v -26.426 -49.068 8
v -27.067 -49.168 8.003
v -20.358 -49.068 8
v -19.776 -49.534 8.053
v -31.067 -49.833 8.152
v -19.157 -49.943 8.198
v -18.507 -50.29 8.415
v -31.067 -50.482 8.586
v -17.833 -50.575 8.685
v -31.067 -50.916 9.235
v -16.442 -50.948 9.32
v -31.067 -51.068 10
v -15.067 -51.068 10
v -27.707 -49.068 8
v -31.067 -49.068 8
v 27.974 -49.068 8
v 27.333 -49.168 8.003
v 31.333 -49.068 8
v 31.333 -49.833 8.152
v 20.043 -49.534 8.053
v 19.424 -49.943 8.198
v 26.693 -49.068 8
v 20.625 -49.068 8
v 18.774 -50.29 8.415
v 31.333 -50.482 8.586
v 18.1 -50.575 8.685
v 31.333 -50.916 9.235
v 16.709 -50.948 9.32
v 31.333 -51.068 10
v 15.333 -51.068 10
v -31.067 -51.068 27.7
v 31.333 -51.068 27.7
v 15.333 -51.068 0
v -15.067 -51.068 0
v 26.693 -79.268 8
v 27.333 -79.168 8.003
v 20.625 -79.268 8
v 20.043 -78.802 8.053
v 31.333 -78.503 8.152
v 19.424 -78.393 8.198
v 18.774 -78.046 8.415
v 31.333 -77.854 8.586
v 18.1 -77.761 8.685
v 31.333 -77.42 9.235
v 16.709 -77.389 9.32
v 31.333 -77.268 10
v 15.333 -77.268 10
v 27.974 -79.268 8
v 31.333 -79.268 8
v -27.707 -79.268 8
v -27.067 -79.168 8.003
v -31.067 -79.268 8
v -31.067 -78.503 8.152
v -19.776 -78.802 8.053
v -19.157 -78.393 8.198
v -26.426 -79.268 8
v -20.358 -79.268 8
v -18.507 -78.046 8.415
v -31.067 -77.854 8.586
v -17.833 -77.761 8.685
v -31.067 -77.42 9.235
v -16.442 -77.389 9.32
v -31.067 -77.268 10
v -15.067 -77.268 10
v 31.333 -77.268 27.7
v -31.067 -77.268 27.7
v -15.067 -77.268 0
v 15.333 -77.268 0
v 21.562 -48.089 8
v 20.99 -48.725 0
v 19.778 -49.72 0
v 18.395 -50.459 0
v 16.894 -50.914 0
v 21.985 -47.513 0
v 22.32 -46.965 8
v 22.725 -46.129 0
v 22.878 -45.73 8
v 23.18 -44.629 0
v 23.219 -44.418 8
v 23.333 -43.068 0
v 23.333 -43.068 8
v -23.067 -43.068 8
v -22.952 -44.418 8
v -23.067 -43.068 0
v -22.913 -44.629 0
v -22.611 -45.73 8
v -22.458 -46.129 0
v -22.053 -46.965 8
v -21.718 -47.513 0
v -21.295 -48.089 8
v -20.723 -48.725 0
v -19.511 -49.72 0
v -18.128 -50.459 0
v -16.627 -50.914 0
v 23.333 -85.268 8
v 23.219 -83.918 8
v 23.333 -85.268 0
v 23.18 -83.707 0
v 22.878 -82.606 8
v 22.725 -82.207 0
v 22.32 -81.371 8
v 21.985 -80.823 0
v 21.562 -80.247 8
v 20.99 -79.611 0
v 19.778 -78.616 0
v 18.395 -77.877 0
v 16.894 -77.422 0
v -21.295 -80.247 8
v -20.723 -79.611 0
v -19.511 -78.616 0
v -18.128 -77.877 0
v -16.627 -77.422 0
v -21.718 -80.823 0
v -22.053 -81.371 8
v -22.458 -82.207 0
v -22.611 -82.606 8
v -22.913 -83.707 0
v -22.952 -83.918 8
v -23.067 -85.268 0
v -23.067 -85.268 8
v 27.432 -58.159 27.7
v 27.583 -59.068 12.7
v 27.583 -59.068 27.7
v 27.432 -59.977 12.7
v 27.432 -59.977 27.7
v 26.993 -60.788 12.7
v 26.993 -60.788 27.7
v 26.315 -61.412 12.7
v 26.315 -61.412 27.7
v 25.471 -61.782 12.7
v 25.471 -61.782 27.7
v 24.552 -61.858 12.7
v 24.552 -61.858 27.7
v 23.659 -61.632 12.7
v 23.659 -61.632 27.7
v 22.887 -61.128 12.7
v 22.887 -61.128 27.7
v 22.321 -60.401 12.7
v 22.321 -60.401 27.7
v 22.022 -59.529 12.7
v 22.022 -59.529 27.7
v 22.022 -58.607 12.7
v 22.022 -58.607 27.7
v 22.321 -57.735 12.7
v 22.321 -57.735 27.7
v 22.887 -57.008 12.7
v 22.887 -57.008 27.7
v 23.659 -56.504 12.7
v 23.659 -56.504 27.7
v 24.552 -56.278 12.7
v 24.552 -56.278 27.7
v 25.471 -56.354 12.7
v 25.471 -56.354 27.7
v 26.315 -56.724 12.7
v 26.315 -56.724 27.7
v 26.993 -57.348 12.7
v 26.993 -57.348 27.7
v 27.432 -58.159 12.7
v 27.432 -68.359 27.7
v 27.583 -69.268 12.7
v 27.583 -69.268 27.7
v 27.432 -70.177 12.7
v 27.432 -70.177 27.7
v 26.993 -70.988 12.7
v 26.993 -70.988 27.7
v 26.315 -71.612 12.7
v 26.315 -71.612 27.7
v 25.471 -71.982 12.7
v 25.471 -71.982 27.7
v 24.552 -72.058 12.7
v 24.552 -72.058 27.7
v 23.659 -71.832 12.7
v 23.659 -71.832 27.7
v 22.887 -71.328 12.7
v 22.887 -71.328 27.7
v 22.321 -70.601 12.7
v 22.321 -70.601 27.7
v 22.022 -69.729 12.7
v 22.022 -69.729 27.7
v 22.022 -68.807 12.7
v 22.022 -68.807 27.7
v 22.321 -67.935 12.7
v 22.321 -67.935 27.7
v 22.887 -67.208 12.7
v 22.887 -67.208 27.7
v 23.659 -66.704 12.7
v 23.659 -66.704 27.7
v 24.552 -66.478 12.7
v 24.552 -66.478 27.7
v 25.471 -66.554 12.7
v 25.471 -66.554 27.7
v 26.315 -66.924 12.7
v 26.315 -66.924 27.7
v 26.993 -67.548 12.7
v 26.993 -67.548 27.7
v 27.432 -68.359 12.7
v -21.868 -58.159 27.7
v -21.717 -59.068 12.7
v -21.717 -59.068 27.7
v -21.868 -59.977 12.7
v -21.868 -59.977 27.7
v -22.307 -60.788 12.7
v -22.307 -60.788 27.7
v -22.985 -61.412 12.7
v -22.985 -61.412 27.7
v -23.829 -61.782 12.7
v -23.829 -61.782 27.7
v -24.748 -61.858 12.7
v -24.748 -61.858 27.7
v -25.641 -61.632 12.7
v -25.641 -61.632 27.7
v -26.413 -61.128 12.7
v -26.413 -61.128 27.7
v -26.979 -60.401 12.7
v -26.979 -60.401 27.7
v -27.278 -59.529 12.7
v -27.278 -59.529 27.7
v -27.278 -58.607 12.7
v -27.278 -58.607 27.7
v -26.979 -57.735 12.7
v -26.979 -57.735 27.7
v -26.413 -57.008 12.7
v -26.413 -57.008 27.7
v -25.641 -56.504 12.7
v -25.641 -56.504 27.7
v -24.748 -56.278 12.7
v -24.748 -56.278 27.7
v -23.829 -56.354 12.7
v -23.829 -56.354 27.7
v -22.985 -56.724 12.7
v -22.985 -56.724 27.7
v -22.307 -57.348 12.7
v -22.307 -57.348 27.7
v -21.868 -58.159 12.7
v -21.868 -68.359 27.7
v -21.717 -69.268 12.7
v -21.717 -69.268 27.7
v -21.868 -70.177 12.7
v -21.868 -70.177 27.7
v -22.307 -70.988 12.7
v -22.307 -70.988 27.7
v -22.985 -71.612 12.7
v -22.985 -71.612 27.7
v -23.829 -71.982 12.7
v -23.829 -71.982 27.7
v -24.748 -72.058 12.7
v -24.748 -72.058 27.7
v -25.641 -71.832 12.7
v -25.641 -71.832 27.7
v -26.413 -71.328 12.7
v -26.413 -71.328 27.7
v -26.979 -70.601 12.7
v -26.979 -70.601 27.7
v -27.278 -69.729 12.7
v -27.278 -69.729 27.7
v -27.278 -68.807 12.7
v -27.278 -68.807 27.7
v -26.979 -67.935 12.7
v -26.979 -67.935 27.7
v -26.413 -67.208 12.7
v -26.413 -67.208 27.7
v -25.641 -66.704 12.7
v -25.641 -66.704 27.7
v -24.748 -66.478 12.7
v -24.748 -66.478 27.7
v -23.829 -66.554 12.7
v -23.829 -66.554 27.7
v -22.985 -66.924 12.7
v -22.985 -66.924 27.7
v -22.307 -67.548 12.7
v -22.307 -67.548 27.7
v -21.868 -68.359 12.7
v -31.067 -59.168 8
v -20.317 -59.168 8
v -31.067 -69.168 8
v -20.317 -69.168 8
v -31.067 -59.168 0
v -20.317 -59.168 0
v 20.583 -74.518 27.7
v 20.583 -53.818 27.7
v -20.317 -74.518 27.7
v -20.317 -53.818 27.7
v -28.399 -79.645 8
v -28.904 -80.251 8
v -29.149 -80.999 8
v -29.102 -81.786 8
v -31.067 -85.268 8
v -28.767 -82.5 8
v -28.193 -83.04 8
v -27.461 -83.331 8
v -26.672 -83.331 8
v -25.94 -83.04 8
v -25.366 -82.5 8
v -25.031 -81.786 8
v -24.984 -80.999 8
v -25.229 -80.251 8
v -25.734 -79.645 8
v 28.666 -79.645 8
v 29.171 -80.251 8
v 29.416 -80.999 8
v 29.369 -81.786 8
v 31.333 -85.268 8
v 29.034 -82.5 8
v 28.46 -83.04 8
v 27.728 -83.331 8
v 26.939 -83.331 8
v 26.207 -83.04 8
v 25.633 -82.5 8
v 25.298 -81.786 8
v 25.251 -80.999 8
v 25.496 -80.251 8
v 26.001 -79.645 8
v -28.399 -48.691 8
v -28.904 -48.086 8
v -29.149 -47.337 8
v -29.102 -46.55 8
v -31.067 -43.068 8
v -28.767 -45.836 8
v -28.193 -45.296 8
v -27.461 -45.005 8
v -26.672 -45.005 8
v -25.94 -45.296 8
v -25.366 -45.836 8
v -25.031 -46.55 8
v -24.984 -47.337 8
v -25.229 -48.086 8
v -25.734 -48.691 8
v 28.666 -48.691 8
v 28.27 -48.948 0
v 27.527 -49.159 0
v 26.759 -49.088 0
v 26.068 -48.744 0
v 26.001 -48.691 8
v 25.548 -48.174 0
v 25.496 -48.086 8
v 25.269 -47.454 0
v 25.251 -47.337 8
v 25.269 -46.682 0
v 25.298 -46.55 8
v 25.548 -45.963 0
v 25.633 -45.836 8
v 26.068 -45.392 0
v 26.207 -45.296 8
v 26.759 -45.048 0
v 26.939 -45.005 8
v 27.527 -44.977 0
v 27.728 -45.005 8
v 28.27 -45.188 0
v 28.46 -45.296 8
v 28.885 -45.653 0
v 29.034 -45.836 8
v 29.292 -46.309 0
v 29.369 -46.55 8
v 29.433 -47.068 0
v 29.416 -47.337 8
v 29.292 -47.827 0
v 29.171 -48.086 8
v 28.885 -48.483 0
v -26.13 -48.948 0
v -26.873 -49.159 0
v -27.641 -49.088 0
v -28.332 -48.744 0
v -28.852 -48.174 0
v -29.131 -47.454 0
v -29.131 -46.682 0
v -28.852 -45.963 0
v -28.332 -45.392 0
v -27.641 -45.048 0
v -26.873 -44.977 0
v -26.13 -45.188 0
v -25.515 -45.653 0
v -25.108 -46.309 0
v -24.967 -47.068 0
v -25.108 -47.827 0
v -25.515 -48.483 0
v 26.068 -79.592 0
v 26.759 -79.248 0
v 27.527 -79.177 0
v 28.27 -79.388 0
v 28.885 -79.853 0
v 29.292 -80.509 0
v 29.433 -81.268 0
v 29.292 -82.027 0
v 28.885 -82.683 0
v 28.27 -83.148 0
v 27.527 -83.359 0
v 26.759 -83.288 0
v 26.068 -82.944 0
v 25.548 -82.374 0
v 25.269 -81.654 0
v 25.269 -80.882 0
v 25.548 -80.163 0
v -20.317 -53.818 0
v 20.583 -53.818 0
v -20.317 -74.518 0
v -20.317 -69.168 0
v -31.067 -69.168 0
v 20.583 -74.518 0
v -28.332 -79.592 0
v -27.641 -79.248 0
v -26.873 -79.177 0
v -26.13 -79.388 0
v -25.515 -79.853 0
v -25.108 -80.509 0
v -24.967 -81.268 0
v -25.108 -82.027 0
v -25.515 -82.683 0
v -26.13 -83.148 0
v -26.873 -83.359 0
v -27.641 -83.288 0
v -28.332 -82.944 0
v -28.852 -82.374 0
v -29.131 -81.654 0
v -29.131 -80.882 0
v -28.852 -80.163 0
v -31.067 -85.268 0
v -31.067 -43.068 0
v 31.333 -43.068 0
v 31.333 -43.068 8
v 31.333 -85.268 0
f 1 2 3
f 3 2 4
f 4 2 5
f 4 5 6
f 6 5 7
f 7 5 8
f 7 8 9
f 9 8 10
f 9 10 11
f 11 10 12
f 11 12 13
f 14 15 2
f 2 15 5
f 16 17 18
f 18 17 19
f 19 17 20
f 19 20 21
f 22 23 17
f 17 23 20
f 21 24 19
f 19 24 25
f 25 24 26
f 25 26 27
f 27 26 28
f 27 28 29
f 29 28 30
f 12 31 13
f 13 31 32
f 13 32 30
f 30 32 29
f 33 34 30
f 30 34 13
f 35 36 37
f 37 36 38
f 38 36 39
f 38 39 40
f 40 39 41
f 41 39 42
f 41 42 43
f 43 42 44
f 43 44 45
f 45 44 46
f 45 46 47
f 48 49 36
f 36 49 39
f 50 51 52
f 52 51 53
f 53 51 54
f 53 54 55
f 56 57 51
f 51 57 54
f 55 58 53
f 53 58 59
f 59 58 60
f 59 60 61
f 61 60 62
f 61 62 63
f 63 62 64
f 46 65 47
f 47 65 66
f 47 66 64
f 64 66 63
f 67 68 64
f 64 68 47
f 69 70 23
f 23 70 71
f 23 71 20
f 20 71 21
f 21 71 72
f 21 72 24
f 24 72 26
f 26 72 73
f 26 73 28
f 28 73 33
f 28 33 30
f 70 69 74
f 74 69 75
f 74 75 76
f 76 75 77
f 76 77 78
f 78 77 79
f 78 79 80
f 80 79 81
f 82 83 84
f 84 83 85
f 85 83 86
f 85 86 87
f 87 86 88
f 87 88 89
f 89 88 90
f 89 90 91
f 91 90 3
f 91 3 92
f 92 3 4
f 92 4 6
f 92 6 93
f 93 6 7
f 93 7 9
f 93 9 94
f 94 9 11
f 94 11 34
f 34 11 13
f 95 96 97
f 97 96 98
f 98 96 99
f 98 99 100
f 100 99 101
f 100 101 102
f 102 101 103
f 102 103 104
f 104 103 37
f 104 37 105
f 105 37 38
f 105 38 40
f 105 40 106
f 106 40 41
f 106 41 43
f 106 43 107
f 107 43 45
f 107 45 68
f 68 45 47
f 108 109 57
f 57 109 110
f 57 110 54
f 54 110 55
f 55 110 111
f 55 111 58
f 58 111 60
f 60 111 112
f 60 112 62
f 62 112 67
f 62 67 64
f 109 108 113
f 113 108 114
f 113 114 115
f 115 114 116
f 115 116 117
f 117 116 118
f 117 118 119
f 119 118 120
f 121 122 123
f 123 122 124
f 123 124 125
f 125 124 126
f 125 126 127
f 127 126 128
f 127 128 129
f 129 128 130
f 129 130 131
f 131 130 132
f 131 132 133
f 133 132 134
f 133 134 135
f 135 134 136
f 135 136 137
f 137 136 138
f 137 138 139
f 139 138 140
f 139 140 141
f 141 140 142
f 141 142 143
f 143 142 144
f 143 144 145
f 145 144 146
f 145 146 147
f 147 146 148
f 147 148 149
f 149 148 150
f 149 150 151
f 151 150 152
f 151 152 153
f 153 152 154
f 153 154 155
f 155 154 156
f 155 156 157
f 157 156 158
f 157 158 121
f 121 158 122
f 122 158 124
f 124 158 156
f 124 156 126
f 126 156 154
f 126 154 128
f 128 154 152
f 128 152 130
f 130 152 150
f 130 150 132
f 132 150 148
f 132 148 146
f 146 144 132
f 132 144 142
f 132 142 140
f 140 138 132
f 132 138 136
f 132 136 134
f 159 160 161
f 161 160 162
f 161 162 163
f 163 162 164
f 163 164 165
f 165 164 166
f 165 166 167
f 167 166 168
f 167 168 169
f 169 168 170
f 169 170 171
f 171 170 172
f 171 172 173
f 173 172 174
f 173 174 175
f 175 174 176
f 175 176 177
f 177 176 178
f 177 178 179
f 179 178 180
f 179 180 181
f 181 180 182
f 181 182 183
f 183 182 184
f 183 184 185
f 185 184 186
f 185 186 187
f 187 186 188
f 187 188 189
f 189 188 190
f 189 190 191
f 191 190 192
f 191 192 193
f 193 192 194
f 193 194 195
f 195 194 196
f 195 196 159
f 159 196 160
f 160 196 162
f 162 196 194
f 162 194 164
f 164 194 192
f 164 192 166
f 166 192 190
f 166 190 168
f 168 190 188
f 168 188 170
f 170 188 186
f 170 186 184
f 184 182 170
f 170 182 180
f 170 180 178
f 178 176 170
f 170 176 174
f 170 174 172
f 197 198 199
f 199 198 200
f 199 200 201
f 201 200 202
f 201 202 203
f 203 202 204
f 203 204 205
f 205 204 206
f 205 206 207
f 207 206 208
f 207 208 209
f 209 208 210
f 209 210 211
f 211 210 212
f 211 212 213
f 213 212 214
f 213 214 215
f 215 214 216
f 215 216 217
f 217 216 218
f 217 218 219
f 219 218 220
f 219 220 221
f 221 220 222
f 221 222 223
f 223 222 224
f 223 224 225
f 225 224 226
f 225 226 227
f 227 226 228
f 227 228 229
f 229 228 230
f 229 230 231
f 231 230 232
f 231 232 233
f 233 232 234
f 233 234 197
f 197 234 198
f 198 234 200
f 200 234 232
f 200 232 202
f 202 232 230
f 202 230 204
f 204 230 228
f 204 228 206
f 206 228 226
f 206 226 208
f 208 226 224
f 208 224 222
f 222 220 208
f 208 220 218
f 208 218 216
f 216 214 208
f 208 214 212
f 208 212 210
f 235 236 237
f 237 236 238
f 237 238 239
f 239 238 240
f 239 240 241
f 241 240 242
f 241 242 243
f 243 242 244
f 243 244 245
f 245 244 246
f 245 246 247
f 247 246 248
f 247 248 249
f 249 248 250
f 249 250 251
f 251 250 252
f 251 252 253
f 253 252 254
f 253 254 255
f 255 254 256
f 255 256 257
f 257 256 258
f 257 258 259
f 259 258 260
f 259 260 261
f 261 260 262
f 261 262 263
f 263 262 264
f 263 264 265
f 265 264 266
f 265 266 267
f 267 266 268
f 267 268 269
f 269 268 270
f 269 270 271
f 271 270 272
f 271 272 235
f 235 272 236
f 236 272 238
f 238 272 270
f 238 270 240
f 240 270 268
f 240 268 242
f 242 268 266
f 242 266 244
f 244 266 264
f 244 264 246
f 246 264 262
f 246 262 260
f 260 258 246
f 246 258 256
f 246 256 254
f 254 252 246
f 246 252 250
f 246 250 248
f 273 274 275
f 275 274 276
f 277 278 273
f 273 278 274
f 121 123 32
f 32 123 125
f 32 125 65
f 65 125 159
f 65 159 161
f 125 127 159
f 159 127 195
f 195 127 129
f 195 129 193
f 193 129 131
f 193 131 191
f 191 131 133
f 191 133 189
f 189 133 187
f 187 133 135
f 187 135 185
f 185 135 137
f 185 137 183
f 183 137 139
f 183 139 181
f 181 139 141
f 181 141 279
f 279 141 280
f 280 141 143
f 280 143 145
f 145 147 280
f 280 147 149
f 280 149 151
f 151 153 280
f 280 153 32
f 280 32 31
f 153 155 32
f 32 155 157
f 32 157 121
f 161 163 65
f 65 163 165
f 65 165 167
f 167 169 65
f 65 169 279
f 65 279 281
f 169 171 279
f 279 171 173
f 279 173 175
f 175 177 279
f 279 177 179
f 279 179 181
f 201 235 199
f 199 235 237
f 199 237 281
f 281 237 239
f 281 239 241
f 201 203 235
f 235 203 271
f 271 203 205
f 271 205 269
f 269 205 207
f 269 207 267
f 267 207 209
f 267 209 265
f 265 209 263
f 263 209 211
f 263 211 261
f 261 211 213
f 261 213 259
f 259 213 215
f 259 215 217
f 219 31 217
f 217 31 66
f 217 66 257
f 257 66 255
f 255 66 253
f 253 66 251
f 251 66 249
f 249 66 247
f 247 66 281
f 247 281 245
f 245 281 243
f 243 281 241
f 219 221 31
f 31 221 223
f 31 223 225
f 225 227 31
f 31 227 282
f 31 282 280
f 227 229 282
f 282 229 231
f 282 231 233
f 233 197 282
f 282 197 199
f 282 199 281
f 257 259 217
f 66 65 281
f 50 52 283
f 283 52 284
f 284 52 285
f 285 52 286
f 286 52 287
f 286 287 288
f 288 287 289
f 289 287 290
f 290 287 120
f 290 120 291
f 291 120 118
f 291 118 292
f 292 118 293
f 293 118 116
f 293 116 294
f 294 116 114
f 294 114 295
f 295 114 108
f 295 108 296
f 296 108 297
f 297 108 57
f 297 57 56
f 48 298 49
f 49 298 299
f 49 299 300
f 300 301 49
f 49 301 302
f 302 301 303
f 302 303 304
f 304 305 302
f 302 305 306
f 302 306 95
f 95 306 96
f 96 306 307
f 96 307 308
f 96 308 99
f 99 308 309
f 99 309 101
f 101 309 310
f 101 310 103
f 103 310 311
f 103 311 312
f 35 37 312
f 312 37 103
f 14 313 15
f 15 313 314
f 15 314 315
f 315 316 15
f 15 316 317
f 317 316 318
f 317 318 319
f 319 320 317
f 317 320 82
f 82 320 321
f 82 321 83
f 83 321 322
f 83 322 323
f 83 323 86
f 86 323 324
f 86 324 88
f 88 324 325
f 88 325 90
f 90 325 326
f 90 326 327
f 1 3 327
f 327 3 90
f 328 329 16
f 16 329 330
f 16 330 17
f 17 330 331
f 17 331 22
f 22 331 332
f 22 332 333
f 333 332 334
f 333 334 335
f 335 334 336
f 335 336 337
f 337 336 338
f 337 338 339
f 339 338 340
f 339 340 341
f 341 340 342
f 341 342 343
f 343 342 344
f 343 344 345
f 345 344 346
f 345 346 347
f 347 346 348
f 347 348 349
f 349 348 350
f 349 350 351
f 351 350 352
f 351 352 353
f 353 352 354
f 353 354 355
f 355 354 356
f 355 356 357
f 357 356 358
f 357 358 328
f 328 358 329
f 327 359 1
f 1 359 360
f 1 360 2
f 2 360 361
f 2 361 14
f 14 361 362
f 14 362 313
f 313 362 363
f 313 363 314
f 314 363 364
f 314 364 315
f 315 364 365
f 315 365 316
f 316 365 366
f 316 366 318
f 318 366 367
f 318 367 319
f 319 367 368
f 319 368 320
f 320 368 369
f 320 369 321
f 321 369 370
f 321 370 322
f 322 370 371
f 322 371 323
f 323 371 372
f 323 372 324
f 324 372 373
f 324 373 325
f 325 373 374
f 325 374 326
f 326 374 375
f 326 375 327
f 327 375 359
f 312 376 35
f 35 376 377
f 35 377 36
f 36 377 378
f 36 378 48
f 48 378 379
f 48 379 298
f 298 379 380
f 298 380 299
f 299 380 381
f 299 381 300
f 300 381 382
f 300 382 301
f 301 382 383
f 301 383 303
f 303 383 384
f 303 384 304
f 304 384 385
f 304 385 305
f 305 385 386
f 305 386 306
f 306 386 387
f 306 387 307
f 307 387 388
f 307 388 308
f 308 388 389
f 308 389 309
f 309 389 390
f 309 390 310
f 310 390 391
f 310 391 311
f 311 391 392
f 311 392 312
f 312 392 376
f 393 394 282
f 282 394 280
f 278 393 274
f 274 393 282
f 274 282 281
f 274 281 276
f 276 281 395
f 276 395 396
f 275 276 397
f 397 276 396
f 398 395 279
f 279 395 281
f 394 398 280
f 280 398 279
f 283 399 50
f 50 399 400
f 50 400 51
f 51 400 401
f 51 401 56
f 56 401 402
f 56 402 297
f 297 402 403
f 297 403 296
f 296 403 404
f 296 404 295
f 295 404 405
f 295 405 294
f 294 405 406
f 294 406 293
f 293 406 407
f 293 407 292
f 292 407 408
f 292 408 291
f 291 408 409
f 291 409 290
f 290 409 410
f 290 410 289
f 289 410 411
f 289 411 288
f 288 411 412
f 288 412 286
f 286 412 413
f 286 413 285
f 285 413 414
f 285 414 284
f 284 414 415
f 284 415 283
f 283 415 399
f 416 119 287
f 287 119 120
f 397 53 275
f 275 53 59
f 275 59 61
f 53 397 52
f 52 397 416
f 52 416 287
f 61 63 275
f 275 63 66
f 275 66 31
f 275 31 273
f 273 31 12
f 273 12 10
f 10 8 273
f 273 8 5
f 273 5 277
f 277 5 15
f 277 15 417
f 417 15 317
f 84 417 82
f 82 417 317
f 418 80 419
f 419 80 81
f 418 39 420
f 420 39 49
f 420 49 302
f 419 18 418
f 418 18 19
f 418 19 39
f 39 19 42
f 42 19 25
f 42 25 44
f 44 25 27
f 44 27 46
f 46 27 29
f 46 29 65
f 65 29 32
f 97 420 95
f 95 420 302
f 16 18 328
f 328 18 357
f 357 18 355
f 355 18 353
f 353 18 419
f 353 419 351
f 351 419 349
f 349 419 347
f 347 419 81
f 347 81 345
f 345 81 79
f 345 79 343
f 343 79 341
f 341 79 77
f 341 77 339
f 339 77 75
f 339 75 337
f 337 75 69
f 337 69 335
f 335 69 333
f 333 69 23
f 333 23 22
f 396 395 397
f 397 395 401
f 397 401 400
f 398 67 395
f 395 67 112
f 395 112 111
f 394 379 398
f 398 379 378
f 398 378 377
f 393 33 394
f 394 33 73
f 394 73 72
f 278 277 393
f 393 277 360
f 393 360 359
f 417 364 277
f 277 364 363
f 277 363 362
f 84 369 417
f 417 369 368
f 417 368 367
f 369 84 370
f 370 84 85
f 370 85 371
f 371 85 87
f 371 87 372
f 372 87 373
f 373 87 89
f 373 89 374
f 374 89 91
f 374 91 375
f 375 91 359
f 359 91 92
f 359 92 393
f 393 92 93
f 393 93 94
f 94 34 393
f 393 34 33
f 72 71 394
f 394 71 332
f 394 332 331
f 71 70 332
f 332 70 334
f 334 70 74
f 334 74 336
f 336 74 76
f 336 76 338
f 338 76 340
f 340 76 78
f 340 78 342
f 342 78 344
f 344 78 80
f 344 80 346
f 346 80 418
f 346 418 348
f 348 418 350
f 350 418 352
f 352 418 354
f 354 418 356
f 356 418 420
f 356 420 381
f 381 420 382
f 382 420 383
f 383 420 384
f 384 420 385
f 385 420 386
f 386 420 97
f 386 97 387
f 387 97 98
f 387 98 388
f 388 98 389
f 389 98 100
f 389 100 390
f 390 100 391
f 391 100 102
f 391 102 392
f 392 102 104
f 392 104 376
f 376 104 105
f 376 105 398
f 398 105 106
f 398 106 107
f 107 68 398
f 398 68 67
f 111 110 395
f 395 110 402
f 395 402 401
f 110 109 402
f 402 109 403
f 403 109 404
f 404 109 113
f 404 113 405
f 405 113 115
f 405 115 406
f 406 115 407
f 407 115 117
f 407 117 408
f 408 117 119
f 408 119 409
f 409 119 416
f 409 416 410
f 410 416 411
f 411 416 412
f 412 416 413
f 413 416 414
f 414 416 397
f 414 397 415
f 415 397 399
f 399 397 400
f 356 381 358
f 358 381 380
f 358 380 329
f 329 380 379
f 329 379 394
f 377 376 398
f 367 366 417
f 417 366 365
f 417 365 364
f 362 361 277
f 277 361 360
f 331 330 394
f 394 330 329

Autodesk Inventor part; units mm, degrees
ref_plane "YZ Plane" through (0, 0, 0) normal (1, 0, 0) x (0, 1, 0)
ref_plane "XZ Plane" through (0, 0, 0) normal (0, 1, 0) x (-1, 0, 0)
sketch "Boceto1" plane through (0, 0, 0) normal (0, 0, 1) x (1, 0, 0)
  line L0 (-20.0665, -74.268) -> (20.3335, -74.268) projected
  line L1 (-20.0665, -54.068) -> (-20.0665, -74.268) projected
  line L2 (20.3335, -74.268) -> (20.3335, -54.068) projected
  circle A0 centre (24.7835, -69.268) radius 2.2 projected
  circle A1 centre (24.7835, -59.068) radius 2.2 projected
  line L3 (20.3335, -54.068) -> (20.3335, -74.268) projected
  line L4 (20.3335, -54.068) -> (28.3335, -54.068) projected
  line L5 (28.3335, -54.068) -> (28.3335, -74.268) projected
  line L6 (20.3335, -74.268) -> (28.3335, -74.268) projected
  line L7 (-20.0665, -74.268) -> (-28.0665, -74.268) projected
  circle A2 centre (-24.5165, -69.268) radius 2.2 projected
  circle A3 centre (-24.5165, -59.068) radius 2.2 projected
  line L8 (-20.0665, -54.068) -> (-20.0665, -74.268) projected
  line L9 (-20.0665, -54.068) -> (-28.0665, -54.068) projected
  line L10 (-28.0665, -74.268) -> (-28.0665, -54.068) projected
  line L11 (-20.0665, -74.268) -> (-28.0665, -74.268) projected
  line L12 (-20.0665, -66.768) -> (-25.0665, -66.768) projected
  line L13 (-25.0665, -61.568) -> (-25.0665, -66.768) projected
  line L14 (-20.0665, -61.568) -> (-25.0665, -61.568) projected
  line L15 (-20.0665, -54.068) -> (-20.0665, -74.268) projected
  line L16 (20.3335, -54.068) -> (-20.0665, -54.068) projected
  line L17 (20.3335, -74.268) -> (20.3335, -54.068) projected
  line L18 (-20.0665, -74.268) -> (20.3335, -74.268) projected
  circle A4 centre (-10.3665, -64.168) radius 3.1 projected
  line L19 (-28.0665, -74.268) -> (-28.0665, -77.268)
  line L20 (-28.0665, -77.268) -> (-31.0665, -77.268)
  line L21 (28.3335, -54.068) -> (31.3335, -54.068)
  line L22 (31.3335, -54.068) -> (31.3335, -51.068)
  line L23 (31.3335, -51.068) -> (28.3335, -51.068)
  line L24 (28.3335, -51.068) -> (28.3335, -54.068)
  line L25 (31.3335, -51.068) -> (-31.0665, -51.068)
  line L26 (-31.0665, -51.068) -> (-31.0665, -77.268)
  line L27 (-31.0665, -77.268) -> (31.3335, -77.268)
  line L28 (31.3335, -77.268) -> (31.3335, -51.068)
  line L29 (-31.0665, -51.068) -> (-23.0665, -51.068)
  line L30 (-23.0665, -51.068) -> (-23.0665, -43.068)
  line L31 (-23.0665, -43.068) -> (-31.0665, -43.068)
  line L32 (-31.0665, -43.068) -> (-31.0665, -51.068)
  line L33 (-31.0665, -77.268) -> (-23.0665, -77.268)
  line L34 (-23.0665, -77.268) -> (-23.0665, -85.268)
  line L35 (-23.0665, -85.268) -> (-31.0665, -85.268)
  line L36 (-31.0665, -85.268) -> (-31.0665, -77.268)
  line L37 (31.3335, -77.268) -> (23.3335, -77.268)
  line L38 (23.3335, -77.268) -> (23.3335, -85.268)
  line L39 (23.3335, -85.268) -> (31.3335, -85.268)
  line L40 (31.3335, -85.268) -> (31.3335, -77.268)
  line L41 (31.3335, -51.068) -> (23.3335, -51.068)
  line L42 (23.3335, -51.068) -> (23.3335, -43.068)
  line L43 (23.3335, -43.068) -> (31.3335, -43.068)
  line L44 (31.3335, -43.068) -> (31.3335, -51.068)
  line L45 (-27.0665, -43.068) -> (-27.0665, -47.068)
  circle A5 centre (-27.0665, -47.068) radius 2.1
  line L46 (-27.0665, -85.268) -> (-27.0665, -81.268)
  circle A6 centre (-27.0665, -81.268) radius 2.1
  line L47 (27.3335, -43.068) -> (27.3335, -47.068)
  circle A7 centre (27.3335, -47.068) radius 2.1
  line L48 (27.3335, -85.268) -> (27.3335, -81.268)
  circle A8 centre (27.3335, -81.268) radius 2.1
  line L49 (-28.0665, -54.068) -> (28.3335, -54.068)
  line L50 (28.3335, -54.068) -> (28.3335, -74.268)
  line L51 (28.3335, -74.268) -> (-28.0665, -74.268)
  line L52 (-28.0665, -74.268) -> (-28.0665, -54.068)
  line L53 (28.5835, -53.818) -> (-28.3165, -53.818)
  line L54 (-28.3165, -53.818) -> (-28.3165, -74.518)
  line L55 (-28.3165, -74.518) -> (28.5835, -74.518)
  line L56 (28.5835, -74.518) -> (28.5835, -53.818)
  line L57 (-20.3165, -53.818) -> (-20.3165, -74.518)
  line L58 (20.5835, -74.518) -> (20.5835, -53.818)
  line L59 (-25.0665, -61.568) -> (-20.0665, -66.768)
  line L60 (-19.0665, -69.168) -> (-26.0665, -69.168)
  line L61 (-26.0665, -69.168) -> (-26.0665, -59.168)
  line L62 (-26.0665, -59.168) -> (-19.0665, -59.168)
  line L63 (-19.0665, -59.168) -> (-19.0665, -69.168)
  line L64 (-19.0665, -69.168) -> (-26.0665, -59.168) construction
  line L65 (-26.0665, -69.168) -> (-19.0665, -59.168) construction
  point P0 (0, 0)
  point P1 (28.5835, -54.068)
  point P2 (28.3335, -53.818)
  point P3 (-20.3165, -61.568)
  point P4 (-20.3165, -66.768)
  point P5 (-22.5665, -64.168)
  point P6 (-20.3165, -69.168)
  point P7 (-20.3165, -59.168)
  dimension "d0" = 3
  dimension "d1" = 3
  dimension "d2" = 3
  dimension "d3" = 3
  dimension "d4" = 8
  dimension "d5" = 8
  dimension "d6" = 8
  dimension "d7" = 8
  dimension "d8" = 8
  dimension "d9" = 8
  dimension "d10" = 8
  dimension "d11" = 8
  dimension "d12" = 4
  dimension "d13" = 4.2
  dimension "d14" = 4
  dimension "d15" = 4.2
  dimension "d16" = 4
  dimension "d17" = 4.2
  dimension "d18" = 4
  dimension "d19" = 4.2
  dimension "d20" = 0.25
  dimension "d28" = 0.25
  dimension "d29" = 0.25
  dimension "d30" = 7
  dimension "d31" = 10
extrude "Extrusión1" add sketch "Boceto1" along normal blind 8 contours L57 L55 L19 L7 | L7 L10 L9 L57 L62 A3 L61 A2 L60 | L58 L4 L5 L6 | L6 L5 L21 L56 L55 L58 | L19 L55 L54 L53 L57 L9 L10 | L55 L56 L21 L28 L27 L19 | L58 L53 L24 L4 | A2 L61 L60 | L19 L20 L26 L25 L24 L53 L54 L55 | L24 L53 L56 L21 | L27 L34 L35 L36 L20 | L56 L53 L24 L23 L22 L21 | A3 L62 L61 | L25 L42 L43 L44 L23 | L32 L31 L30 L25 | L27 L40 L39 L38 | A0 | A1 picked at (-23.5885, -69.413) picked at (-23.5885, -58.923)
sketch "Boceto2" plane through (0, 0, 8) normal (0, 0, 1) x (1, 0, 0)
  line L0 (-23.0665, -85.268) -> (-23.0665, -77.268) projected
  line L1 (-23.0665, -77.268) -> (23.3335, -77.268) projected
  line L2 (23.3335, -77.268) -> (23.3335, -85.268) projected
  line L3 (23.3335, -85.268) -> (31.3335, -85.268) projected
  line L4 (31.3335, -85.268) -> (31.3335, -43.068) projected
  line L5 (31.3335, -43.068) -> (23.3335, -43.068) projected
  line L6 (23.3335, -43.068) -> (23.3335, -51.068) projected
  line L7 (23.3335, -51.068) -> (-23.0665, -51.068) projected
  line L8 (-23.0665, -51.068) -> (-23.0665, -43.068) projected
  line L9 (-23.0665, -43.068) -> (-31.0665, -43.068) projected
  line L10 (-31.0665, -43.068) -> (-31.0665, -85.268) projected
  line L11 (-31.0665, -85.268) -> (-23.0665, -85.268) projected
  circle A0 centre (-27.0665, -81.268) radius 2.1 projected
  line L12 (20.5835, -74.518) -> (-20.3165, -74.518) projected
  line L13 (-20.3165, -53.818) -> (20.5835, -53.818) projected
  circle A1 centre (27.3335, -81.268) radius 2.1 projected
  circle A2 centre (-27.0665, -47.068) radius 2.1 projected
  circle A3 centre (27.3335, -47.068) radius 2.1 projected
  line L14 (-23.0665, -85.268) -> (-23.0665, -77.268) projected
  line L15 (-23.0665, -77.268) -> (-31.0665, -77.268)
  line L16 (-23.0665, -77.268) -> (-15.0665, -77.268) construction
  line L17 (23.3335, -51.068) -> (31.3335, -51.068)
  line L18 (31.3335, -85.268) -> (31.3335, -43.068) projected
  line L19 (23.3335, -51.068) -> (31.3335, -51.068) construction
  line L20 (-31.0665, -77.268) -> (31.3335, -77.268)
  line L21 (31.3335, -77.268) -> (31.3335, -51.068)
  line L22 (31.3335, -51.068) -> (-31.0665, -51.068)
  line L23 (-31.0665, -51.068) -> (-31.0665, -77.268)
  line L24 (20.5835, -53.818) -> (20.5835, -74.518) projected
  line L25 (-20.3165, -74.518) -> (-20.3165, -69.168) projected
  line L26 (-20.3165, -59.168) -> (-20.3165, -53.818) projected
  line L27 (-20.3165, -69.168) -> (-26.0665, -69.168) projected
  line L28 (-26.0665, -69.168) -> (-26.0665, -59.168) projected
  line L29 (-26.0665, -59.168) -> (-20.3165, -59.168) projected
  line L30 (-20.3165, -59.168) -> (-20.3165, -69.168)
  point P0 (0, 0)
  dimension "d23" = 180
  dimension "d24" = 8
  dimension "d25" = 0
ref_plane "Plano de trabajo1" through (-28.0665, -74.268, 27.7) normal (0, 0, -1) x (0, 1, 0)
extrude "Extrusión2" add sketch "Boceto2" along normal up to surface (19.7 mm away) contours L15 L10 L22 L7 L17 L4 L20 L1 | L27 L28 L29 L30
sketch "Boceto3" plane through (-31.0665, -85.268, 0) normal (-1, 0, 0) x (0, 0, 1)
  line L0 (8, 16.1) -> (8, 26.1) projected
  line L1 (0, 26.1) -> (8, 26.1) projected
  line L2 (0, 26.1) -> (8, 26.1)
  line L3 (8, 26.1) -> (8, 16.1)
  line L4 (8, 16.1) -> (0, 16.1)
  line L5 (0, 16.1) -> (0, 26.1)
  point P0 (0, 85.268)
extrude "Extrusión3" cut sketch "Boceto3" against normal blind 8
sketch "Boceto4" plane through (-31.0665, -51.068, 27.7) normal (0, 0, 1) x (1, 0, 0)
  circle A0 centre (6.55, -18.2) radius 2.2 projected
  circle A1 centre (6.55, -8) radius 2.2 projected
  line L0 (11, -3) -> (11, -23.2) projected
  line L1 (11, -3) -> (3, -3) projected
  line L2 (3, -23.2) -> (3, -3) projected
  line L3 (11, -23.2) -> (3, -23.2) projected
  circle A2 centre (55.85, -18.2) radius 2.2 projected
  circle A3 centre (55.85, -8) radius 2.2 projected
  line L4 (51.4, -23.2) -> (51.4, -3) projected
  line L5 (51.4, -23.2) -> (59.4, -23.2) projected
  line L6 (59.4, -23.2) -> (59.4, -3) projected
  line L7 (51.4, -3) -> (59.4, -3) projected
  point P0 (31.0665, 51.068)
hole "Agujero1" at (-24.5165, -69.268, 27.7) at (-24.5165, -59.068, 27.7) at (24.7835, -69.268, 27.7) at (24.7835, -59.068, 27.7) direction (0, 0, -1) diameter 5.6 depth 15
fillet "Empalme1" radius 8 4 edges at (-23.0665, -77.268, 4) (23.3335, -77.268, 4) (-23.0665, -51.068, 4) (23.3335, -51.068, 4)
fillet "Empalme2" radius 2 4 edges at (-19.0668, -77.268, 8) (19.3337, -77.268, 8) (19.3337, -51.068, 8) (-19.0668, -51.068, 8)
equation "\"Radio_pliegue\" = Grosor"
equation "\"Anchura_desahogo_plegado\" = Grosor"
equation "\"Profundidad_desahogo_plegado\" = 0.5 * Grosor"
equation "\"Tamaño_destalonado\" = 4 * Grosor"
equation "\"Remanente_mínimo\" = 2 * Grosor"
equation "\"Radiodetransición\" = Radio_pliegue"
equation "\"Tamaño_de_radio_de_Jacobi\" = Radio_pliegue"
equation "\"TamañoSeparación\" = Grosor"
equation "\"Grosor\" = 3.048"
properties part number "Soporte_Servo"
